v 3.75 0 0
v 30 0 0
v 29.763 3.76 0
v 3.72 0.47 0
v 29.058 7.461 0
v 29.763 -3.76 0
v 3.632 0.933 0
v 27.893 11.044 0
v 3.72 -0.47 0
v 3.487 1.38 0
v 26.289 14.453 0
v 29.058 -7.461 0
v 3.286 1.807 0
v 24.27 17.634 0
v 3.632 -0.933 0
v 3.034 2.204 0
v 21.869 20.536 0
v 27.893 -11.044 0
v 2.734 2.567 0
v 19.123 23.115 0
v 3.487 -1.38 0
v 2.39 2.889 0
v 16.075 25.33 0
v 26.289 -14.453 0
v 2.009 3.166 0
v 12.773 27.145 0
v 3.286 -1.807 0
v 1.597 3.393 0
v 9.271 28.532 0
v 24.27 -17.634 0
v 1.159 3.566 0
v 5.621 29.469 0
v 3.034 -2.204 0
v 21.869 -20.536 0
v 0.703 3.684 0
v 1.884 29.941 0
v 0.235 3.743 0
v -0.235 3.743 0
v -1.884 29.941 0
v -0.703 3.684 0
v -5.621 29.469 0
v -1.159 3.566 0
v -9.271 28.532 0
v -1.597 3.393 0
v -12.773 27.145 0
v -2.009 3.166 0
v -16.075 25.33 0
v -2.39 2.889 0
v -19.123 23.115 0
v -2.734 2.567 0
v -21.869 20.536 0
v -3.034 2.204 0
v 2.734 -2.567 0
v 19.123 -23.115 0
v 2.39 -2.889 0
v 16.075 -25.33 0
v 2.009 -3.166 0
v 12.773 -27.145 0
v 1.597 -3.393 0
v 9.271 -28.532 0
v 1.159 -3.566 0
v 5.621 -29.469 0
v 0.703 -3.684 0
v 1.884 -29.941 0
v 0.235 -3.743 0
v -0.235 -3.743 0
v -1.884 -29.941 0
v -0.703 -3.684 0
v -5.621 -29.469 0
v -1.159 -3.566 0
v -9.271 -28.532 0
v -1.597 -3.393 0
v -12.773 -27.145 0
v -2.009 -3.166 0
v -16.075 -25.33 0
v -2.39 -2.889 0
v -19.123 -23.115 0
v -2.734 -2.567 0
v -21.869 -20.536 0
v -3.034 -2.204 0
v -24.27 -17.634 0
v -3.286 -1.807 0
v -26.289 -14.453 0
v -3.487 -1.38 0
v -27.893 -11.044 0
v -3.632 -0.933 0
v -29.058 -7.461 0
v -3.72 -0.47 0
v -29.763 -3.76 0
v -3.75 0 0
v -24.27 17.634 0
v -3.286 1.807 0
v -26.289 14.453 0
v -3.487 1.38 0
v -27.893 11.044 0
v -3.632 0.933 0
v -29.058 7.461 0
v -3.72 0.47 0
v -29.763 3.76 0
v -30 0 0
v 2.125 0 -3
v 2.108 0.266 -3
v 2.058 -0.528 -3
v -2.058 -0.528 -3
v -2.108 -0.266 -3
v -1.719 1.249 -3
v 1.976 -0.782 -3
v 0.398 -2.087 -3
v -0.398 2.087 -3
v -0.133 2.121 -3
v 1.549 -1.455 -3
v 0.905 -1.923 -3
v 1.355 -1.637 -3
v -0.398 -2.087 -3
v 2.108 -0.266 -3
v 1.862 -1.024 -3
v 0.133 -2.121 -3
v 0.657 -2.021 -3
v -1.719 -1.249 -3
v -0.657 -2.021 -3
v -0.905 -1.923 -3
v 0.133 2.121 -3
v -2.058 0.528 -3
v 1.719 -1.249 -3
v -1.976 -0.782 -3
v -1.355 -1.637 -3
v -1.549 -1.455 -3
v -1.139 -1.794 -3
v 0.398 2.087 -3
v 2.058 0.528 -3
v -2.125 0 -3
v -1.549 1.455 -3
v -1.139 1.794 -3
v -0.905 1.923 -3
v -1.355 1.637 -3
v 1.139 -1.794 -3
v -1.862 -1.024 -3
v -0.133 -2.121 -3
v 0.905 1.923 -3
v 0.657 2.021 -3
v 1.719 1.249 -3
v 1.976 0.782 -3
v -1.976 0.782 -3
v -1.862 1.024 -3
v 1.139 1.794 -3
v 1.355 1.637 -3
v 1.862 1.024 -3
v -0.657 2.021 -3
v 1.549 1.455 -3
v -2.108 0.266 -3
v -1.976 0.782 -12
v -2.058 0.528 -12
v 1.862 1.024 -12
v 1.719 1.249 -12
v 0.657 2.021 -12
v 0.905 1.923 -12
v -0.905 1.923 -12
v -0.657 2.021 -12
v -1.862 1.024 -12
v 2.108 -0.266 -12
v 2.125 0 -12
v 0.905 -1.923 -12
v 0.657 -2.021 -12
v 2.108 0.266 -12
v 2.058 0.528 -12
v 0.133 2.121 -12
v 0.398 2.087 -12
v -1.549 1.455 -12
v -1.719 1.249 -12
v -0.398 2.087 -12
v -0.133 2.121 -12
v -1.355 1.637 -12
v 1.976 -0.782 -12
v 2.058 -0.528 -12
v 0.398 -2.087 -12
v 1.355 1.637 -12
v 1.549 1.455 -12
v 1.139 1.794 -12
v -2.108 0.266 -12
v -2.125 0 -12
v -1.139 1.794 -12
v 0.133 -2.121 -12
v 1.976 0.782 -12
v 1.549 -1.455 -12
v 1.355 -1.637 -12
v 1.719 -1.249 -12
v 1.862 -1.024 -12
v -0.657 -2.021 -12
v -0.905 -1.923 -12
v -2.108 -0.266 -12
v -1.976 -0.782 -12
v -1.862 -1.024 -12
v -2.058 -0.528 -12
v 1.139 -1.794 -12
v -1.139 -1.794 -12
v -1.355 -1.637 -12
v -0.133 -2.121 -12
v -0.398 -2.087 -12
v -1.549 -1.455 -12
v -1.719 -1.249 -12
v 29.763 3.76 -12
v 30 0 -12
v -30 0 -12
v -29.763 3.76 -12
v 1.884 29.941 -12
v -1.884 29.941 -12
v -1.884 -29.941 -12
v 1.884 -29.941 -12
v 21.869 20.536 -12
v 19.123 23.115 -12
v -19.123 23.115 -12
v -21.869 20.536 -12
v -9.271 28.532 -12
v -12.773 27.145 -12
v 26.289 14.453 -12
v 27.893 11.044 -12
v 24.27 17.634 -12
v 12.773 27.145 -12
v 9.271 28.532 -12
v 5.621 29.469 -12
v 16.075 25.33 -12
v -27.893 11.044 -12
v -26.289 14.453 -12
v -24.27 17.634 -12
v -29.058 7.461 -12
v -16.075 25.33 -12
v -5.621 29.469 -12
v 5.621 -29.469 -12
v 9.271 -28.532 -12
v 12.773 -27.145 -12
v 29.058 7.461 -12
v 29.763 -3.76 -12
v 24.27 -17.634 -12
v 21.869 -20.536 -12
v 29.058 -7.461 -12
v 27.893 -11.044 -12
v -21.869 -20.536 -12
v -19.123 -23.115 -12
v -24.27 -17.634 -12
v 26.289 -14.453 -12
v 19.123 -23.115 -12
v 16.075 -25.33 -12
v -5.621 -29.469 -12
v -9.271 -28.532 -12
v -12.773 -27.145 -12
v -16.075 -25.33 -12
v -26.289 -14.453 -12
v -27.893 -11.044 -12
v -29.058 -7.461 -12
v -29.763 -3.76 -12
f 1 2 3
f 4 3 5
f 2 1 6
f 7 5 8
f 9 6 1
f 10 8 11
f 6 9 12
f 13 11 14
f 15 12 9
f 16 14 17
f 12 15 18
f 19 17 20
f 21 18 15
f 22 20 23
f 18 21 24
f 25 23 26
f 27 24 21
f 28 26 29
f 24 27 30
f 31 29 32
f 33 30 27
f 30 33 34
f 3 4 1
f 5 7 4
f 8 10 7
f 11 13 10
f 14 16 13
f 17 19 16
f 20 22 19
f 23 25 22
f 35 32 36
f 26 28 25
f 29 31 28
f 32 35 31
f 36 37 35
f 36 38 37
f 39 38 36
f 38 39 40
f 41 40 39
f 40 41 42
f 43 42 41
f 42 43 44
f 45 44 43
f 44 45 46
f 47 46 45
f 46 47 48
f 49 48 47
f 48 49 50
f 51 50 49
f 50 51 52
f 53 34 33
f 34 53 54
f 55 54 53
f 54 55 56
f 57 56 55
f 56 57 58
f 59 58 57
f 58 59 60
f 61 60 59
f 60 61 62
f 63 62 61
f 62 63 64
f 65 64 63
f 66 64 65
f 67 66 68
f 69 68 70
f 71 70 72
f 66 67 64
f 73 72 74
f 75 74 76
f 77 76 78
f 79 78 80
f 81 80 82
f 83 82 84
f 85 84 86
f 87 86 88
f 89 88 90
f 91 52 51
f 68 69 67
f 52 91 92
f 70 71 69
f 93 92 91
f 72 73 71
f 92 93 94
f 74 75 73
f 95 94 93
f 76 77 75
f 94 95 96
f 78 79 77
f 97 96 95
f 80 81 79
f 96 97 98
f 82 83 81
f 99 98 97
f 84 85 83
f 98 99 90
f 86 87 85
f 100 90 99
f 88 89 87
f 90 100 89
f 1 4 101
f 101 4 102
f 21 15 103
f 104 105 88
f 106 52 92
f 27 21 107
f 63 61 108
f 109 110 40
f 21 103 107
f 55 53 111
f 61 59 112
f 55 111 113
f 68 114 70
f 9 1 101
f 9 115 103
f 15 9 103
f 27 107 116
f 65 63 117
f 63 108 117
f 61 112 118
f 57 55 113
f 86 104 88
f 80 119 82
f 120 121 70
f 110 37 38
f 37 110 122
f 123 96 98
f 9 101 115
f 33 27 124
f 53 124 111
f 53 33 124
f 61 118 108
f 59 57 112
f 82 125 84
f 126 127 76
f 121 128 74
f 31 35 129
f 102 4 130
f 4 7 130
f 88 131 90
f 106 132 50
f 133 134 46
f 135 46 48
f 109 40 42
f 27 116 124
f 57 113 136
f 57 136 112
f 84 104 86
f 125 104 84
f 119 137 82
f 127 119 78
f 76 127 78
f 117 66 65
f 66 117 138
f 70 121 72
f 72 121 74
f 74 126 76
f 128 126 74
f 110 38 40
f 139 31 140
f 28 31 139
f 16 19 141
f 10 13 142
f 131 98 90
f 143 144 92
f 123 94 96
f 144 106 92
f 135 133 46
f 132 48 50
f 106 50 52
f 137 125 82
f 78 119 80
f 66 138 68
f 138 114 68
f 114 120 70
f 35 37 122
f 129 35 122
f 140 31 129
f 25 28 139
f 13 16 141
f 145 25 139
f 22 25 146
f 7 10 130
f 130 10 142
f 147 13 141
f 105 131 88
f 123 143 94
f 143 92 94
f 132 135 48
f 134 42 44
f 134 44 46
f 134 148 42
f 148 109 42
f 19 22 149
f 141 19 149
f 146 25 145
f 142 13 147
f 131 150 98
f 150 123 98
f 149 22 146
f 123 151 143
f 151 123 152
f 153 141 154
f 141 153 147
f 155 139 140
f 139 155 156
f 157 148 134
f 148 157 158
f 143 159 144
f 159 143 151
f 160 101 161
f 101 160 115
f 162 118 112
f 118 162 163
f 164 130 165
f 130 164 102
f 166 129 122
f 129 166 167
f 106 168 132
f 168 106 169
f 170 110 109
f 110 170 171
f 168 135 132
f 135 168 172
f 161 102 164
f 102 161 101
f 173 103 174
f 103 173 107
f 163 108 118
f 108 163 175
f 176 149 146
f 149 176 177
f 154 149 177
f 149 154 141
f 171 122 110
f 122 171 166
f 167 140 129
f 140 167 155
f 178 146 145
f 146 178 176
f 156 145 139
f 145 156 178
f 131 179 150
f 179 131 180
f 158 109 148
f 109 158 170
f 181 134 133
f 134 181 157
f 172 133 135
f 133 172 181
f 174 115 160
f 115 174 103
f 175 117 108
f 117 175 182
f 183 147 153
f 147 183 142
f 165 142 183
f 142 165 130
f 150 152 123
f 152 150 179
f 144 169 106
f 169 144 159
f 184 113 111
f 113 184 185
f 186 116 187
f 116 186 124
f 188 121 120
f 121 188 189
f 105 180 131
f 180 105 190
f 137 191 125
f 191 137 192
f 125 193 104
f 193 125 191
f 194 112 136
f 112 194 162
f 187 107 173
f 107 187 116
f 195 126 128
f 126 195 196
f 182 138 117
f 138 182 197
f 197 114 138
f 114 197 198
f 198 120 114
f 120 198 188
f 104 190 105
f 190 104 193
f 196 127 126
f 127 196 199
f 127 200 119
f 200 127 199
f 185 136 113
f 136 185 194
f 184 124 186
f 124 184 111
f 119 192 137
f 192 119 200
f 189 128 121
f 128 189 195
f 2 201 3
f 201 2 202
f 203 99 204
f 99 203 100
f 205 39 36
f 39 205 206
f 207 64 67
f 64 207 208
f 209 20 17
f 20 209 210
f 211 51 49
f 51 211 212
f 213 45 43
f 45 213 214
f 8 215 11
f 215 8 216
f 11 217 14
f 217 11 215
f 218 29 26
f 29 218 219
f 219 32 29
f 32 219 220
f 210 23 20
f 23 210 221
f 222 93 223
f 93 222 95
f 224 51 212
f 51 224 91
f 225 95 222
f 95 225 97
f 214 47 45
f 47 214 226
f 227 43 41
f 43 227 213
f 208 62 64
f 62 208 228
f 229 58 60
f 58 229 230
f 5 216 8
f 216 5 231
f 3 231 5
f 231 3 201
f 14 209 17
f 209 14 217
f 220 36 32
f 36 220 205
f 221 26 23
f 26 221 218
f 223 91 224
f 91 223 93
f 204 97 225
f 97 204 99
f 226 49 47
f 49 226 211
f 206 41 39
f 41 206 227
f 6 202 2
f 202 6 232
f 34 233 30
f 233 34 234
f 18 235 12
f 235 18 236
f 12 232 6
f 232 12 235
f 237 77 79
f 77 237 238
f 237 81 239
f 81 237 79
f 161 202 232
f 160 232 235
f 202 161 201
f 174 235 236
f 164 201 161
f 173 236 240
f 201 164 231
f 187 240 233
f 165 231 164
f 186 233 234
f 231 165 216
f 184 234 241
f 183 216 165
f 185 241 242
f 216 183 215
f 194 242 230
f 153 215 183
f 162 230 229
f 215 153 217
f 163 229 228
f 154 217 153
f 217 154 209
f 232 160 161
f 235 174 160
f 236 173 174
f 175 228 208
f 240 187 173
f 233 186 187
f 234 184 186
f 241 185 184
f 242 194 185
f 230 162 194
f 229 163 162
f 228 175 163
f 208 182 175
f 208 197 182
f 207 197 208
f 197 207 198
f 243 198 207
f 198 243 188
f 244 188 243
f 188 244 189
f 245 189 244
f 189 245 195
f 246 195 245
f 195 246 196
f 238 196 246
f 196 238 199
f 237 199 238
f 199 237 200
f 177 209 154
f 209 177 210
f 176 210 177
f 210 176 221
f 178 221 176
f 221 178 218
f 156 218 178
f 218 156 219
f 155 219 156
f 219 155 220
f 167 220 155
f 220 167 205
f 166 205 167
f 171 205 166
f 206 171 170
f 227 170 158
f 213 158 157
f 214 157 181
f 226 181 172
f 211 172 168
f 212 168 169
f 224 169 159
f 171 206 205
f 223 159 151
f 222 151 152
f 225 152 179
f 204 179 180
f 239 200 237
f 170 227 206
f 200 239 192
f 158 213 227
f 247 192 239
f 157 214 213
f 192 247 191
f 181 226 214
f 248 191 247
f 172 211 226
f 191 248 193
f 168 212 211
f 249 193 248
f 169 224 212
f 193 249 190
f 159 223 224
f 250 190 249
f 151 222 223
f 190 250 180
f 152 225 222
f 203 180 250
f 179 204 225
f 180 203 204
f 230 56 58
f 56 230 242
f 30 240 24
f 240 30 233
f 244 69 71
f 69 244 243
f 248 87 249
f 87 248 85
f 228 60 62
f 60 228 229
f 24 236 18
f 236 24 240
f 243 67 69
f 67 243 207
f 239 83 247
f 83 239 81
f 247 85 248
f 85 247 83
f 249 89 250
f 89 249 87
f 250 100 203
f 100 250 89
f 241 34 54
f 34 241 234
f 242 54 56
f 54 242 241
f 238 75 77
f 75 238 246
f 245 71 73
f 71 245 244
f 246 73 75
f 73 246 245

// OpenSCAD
$fn = 50;

difference() {
	union() {
		translate(v = [0, 0, -12.0]) {
			cylinder(h = 12, r = 30.0);
		}
	}
	union() {
		translate(v = [0, 0, 0]) {
			rotate(a = [0, 0, 0]) {
				difference() {
					union() {
						translate(v = [0, 0, -15.0]) {
							cylinder(h = 15, r = 2.0);
						}
						translate(v = [0, 0, -3]) {
							cylinder(h = 3, r1 = 2.125, r2 = 3.75);
						}
						translate(v = [0, 0, -15.0]) {
							cylinder(h = 15, r = 2.125);
						}
						translate(v = [0, 0, -15.0]) {
							cylinder(h = 15, r = 2.0);
						}
					}
					union();
				}
			}
		}
	}
}
